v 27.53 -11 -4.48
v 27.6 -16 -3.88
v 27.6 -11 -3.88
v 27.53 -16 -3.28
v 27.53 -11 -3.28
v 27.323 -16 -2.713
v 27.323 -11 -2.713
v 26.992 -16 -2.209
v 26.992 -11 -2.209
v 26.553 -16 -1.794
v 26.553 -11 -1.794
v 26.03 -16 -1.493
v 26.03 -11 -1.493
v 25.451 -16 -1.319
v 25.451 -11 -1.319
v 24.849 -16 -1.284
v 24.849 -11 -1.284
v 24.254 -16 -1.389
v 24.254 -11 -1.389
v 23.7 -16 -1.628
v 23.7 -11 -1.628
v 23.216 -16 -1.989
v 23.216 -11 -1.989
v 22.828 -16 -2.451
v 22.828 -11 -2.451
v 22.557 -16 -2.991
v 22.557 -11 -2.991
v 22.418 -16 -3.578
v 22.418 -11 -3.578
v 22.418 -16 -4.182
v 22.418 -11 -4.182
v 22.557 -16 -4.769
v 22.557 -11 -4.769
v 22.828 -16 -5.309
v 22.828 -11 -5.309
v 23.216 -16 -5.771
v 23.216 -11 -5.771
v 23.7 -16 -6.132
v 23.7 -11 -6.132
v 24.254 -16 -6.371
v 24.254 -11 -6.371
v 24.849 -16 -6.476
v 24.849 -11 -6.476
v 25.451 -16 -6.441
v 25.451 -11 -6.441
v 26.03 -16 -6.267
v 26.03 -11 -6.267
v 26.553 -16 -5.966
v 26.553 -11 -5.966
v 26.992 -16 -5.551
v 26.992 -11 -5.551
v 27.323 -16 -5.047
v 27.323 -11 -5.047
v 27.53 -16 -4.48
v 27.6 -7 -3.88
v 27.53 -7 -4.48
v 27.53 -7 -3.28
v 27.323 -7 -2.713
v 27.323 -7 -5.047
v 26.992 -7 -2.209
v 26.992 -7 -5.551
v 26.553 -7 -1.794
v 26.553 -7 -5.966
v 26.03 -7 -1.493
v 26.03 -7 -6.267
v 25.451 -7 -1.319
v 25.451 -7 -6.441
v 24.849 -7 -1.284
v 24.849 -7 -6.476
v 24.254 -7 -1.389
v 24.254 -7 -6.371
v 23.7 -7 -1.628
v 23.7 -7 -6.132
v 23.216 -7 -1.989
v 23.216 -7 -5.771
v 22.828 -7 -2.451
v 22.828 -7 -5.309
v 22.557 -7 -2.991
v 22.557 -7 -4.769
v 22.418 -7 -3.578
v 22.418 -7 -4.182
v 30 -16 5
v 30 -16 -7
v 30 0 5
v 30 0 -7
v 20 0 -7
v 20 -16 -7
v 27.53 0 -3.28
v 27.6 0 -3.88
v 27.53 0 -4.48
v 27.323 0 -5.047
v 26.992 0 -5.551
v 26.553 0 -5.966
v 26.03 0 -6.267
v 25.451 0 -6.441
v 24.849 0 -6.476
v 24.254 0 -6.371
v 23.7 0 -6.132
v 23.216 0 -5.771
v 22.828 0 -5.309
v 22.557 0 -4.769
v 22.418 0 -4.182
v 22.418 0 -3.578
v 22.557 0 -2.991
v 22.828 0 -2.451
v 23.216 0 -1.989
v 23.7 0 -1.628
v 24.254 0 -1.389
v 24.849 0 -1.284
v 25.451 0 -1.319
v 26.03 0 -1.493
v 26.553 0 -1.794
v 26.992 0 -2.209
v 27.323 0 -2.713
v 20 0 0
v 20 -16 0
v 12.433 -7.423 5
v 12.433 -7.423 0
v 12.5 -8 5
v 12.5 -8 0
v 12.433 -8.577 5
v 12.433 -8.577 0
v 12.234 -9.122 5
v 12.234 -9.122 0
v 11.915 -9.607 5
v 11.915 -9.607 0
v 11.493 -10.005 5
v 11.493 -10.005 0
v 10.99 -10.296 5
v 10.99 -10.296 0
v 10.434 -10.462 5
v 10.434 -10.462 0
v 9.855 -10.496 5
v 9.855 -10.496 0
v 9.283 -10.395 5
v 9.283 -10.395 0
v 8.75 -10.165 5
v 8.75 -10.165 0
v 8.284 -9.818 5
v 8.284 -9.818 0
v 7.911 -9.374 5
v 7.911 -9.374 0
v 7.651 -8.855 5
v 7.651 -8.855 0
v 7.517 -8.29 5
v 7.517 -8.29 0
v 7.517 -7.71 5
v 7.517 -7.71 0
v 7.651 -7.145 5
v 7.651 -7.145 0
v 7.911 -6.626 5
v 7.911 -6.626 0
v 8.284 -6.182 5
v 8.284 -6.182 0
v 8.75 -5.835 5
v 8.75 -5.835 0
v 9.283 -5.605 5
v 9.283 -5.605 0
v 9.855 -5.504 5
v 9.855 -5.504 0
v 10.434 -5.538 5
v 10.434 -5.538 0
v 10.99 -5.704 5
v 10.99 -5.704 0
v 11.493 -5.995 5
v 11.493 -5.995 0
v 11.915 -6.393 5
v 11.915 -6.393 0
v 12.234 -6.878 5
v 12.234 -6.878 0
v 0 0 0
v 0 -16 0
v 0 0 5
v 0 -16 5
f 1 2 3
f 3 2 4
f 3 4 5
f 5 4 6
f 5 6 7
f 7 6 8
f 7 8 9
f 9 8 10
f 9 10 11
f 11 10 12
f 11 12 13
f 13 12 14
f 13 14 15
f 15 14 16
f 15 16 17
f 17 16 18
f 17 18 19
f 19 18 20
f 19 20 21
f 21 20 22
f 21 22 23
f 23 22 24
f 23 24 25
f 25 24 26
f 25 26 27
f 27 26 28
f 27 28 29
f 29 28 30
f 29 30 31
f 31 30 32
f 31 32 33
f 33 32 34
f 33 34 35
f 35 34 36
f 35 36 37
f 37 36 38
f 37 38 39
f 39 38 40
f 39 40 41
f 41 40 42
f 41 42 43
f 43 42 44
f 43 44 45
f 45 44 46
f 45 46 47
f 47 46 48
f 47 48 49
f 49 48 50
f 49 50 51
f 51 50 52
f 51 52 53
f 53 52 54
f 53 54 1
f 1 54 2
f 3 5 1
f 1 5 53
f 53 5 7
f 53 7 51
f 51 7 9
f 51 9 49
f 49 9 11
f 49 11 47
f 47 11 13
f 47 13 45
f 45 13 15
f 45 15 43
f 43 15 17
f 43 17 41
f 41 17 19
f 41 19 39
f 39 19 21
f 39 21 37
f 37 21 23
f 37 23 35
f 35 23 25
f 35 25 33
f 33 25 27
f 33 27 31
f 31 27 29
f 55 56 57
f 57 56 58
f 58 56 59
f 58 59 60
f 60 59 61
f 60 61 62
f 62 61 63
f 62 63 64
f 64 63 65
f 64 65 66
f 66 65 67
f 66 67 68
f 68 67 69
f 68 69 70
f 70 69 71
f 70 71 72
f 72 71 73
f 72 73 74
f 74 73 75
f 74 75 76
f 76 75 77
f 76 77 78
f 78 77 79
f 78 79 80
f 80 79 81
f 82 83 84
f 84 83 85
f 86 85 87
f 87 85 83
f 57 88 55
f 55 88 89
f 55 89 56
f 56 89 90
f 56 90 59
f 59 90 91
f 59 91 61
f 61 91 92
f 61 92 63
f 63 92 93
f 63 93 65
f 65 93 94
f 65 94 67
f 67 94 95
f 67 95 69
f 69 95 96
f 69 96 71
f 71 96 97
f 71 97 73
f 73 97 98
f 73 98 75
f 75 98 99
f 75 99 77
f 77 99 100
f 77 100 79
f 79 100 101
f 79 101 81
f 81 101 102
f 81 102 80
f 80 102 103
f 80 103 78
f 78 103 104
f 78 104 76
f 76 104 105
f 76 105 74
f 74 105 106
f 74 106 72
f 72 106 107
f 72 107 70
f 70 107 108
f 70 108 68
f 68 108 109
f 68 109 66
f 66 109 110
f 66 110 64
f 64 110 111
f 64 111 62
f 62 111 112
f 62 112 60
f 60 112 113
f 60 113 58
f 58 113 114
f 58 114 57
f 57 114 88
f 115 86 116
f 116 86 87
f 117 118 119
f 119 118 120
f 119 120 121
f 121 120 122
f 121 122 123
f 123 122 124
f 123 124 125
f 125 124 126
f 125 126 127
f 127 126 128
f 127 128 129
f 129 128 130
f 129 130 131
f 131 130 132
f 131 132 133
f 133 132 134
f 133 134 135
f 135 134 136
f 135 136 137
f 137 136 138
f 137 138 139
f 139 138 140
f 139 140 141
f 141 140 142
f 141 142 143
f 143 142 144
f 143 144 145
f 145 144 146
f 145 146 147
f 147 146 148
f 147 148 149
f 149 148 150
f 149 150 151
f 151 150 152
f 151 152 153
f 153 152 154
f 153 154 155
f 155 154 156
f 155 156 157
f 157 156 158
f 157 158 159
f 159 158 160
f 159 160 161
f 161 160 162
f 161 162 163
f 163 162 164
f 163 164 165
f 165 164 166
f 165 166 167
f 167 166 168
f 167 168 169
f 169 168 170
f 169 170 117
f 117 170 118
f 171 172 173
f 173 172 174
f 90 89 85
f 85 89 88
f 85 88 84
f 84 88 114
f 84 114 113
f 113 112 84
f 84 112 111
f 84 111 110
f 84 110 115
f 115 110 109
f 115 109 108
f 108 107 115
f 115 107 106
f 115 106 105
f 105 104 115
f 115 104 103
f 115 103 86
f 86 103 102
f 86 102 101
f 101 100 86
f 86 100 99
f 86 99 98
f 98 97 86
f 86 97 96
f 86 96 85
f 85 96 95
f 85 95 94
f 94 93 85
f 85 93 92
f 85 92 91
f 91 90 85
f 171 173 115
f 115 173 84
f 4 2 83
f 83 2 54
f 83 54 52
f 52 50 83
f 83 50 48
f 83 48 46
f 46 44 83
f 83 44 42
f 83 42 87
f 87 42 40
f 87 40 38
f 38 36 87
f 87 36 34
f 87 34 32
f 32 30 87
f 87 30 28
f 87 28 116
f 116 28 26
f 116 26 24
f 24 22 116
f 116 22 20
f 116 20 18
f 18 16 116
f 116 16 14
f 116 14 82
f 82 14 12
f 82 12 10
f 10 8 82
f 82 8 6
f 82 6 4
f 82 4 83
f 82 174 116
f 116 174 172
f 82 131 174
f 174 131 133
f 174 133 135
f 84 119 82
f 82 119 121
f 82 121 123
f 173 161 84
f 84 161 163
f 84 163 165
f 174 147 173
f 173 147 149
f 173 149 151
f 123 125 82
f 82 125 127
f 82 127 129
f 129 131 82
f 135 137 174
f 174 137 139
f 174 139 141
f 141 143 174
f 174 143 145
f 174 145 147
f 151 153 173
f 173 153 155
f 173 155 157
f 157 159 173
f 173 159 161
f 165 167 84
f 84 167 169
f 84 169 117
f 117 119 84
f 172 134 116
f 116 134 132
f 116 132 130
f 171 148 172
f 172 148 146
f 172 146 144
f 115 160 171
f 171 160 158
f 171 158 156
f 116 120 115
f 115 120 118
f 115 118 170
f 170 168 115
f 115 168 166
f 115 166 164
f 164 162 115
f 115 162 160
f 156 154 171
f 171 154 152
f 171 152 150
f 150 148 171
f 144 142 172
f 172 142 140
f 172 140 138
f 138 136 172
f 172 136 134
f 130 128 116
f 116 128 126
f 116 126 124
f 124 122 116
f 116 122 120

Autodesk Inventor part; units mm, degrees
ref_plane "YZ Plane" through (0, 0, 0) normal (1, 0, 0) x (0, 1, 0)
ref_plane "XZ Plane" through (0, 0, 0) normal (0, 1, 0) x (-1, 0, 0)
ref_plane "XY Plane" through (0, 0, 0) normal (0, 0, 1) x (1, 0, 0)
sketch "Sketch1" plane through (0, 0, 0) normal (0, 0, 1) x (1, 0, 0)
  line L0 (0, 0) -> (20, 0)
  line L1 (20, 0) -> (20, -16)
  line L2 (20, -16) -> (0, -16)
  line L3 (0, -16) -> (0, 0)
  circle A0 centre (10, -8) radius 2.5
  dimension "d0" = 20
  dimension "d1" = 16
  dimension "d2" = 8
  dimension "d3" = 10
  dimension "d4" = 5
extrude "Extrusion1" add sketch "Sketch1" along normal blind 5
sketch "Sketch2" plane through (0, 0, 0) normal (0, 1, 0) x (1, 0, 0)
  line L0 (20, 0) -> (20, -5) projected
  line L1 (20, 0) -> (30, 0)
  line L2 (30, 0) -> (30, 7)
  line L3 (30, 7) -> (20, 7)
  line L4 (20, 7) -> (20, 0)
  line L5 (20, -5) -> (30, -5)
  line L6 (30, -5) -> (30, 0)
  line L7 (30, 0) -> (20, 0)
  line L8 (20, 0) -> (20, -5)
  circle A0 centre (25, 3.88) radius 2.6
  point P0 (0, 0)
  dimension "d7" = 10
  dimension "d8" = 7
  dimension "d9" = 5.2
extrude "Extrusion2" add sketch "Sketch2" against normal blind 16
sketch "Sketch3" plane through (0, -16, 0) normal (0, -1, 0) x (1, 0, 0)
  line L0 (30, -7) -> (30, 5) projected
  line L1 (0, 0) -> (20, 0) projected
  line L2 (30, -7) -> (20, -7)
  line L3 (20, -7) -> (20, 0)
  line L4 (20, 0) -> (30, 0)
  line L5 (30, 0) -> (30, -7)
extrude "Extrusion3" add sketch "Sketch3" against normal blind 9
sketch "Sketch4" plane through (0, -16, 0) normal (0, -1, 0) x (1, 0, 0)
  circle A0 centre (25, -3.88) radius 2.6 projected
  circle A1 centre (25, -3.88) radius 2.6
  point P0 (0, 0)
  dimension "d16" = 5.2
extrude "Extrusion4" cut sketch "Sketch4" against normal blind 5
equation "\"d2\" = 0.5 * d1"
equation "\"d3\" = 0.5 * d0"
properties part number "cover mount LR v03"
